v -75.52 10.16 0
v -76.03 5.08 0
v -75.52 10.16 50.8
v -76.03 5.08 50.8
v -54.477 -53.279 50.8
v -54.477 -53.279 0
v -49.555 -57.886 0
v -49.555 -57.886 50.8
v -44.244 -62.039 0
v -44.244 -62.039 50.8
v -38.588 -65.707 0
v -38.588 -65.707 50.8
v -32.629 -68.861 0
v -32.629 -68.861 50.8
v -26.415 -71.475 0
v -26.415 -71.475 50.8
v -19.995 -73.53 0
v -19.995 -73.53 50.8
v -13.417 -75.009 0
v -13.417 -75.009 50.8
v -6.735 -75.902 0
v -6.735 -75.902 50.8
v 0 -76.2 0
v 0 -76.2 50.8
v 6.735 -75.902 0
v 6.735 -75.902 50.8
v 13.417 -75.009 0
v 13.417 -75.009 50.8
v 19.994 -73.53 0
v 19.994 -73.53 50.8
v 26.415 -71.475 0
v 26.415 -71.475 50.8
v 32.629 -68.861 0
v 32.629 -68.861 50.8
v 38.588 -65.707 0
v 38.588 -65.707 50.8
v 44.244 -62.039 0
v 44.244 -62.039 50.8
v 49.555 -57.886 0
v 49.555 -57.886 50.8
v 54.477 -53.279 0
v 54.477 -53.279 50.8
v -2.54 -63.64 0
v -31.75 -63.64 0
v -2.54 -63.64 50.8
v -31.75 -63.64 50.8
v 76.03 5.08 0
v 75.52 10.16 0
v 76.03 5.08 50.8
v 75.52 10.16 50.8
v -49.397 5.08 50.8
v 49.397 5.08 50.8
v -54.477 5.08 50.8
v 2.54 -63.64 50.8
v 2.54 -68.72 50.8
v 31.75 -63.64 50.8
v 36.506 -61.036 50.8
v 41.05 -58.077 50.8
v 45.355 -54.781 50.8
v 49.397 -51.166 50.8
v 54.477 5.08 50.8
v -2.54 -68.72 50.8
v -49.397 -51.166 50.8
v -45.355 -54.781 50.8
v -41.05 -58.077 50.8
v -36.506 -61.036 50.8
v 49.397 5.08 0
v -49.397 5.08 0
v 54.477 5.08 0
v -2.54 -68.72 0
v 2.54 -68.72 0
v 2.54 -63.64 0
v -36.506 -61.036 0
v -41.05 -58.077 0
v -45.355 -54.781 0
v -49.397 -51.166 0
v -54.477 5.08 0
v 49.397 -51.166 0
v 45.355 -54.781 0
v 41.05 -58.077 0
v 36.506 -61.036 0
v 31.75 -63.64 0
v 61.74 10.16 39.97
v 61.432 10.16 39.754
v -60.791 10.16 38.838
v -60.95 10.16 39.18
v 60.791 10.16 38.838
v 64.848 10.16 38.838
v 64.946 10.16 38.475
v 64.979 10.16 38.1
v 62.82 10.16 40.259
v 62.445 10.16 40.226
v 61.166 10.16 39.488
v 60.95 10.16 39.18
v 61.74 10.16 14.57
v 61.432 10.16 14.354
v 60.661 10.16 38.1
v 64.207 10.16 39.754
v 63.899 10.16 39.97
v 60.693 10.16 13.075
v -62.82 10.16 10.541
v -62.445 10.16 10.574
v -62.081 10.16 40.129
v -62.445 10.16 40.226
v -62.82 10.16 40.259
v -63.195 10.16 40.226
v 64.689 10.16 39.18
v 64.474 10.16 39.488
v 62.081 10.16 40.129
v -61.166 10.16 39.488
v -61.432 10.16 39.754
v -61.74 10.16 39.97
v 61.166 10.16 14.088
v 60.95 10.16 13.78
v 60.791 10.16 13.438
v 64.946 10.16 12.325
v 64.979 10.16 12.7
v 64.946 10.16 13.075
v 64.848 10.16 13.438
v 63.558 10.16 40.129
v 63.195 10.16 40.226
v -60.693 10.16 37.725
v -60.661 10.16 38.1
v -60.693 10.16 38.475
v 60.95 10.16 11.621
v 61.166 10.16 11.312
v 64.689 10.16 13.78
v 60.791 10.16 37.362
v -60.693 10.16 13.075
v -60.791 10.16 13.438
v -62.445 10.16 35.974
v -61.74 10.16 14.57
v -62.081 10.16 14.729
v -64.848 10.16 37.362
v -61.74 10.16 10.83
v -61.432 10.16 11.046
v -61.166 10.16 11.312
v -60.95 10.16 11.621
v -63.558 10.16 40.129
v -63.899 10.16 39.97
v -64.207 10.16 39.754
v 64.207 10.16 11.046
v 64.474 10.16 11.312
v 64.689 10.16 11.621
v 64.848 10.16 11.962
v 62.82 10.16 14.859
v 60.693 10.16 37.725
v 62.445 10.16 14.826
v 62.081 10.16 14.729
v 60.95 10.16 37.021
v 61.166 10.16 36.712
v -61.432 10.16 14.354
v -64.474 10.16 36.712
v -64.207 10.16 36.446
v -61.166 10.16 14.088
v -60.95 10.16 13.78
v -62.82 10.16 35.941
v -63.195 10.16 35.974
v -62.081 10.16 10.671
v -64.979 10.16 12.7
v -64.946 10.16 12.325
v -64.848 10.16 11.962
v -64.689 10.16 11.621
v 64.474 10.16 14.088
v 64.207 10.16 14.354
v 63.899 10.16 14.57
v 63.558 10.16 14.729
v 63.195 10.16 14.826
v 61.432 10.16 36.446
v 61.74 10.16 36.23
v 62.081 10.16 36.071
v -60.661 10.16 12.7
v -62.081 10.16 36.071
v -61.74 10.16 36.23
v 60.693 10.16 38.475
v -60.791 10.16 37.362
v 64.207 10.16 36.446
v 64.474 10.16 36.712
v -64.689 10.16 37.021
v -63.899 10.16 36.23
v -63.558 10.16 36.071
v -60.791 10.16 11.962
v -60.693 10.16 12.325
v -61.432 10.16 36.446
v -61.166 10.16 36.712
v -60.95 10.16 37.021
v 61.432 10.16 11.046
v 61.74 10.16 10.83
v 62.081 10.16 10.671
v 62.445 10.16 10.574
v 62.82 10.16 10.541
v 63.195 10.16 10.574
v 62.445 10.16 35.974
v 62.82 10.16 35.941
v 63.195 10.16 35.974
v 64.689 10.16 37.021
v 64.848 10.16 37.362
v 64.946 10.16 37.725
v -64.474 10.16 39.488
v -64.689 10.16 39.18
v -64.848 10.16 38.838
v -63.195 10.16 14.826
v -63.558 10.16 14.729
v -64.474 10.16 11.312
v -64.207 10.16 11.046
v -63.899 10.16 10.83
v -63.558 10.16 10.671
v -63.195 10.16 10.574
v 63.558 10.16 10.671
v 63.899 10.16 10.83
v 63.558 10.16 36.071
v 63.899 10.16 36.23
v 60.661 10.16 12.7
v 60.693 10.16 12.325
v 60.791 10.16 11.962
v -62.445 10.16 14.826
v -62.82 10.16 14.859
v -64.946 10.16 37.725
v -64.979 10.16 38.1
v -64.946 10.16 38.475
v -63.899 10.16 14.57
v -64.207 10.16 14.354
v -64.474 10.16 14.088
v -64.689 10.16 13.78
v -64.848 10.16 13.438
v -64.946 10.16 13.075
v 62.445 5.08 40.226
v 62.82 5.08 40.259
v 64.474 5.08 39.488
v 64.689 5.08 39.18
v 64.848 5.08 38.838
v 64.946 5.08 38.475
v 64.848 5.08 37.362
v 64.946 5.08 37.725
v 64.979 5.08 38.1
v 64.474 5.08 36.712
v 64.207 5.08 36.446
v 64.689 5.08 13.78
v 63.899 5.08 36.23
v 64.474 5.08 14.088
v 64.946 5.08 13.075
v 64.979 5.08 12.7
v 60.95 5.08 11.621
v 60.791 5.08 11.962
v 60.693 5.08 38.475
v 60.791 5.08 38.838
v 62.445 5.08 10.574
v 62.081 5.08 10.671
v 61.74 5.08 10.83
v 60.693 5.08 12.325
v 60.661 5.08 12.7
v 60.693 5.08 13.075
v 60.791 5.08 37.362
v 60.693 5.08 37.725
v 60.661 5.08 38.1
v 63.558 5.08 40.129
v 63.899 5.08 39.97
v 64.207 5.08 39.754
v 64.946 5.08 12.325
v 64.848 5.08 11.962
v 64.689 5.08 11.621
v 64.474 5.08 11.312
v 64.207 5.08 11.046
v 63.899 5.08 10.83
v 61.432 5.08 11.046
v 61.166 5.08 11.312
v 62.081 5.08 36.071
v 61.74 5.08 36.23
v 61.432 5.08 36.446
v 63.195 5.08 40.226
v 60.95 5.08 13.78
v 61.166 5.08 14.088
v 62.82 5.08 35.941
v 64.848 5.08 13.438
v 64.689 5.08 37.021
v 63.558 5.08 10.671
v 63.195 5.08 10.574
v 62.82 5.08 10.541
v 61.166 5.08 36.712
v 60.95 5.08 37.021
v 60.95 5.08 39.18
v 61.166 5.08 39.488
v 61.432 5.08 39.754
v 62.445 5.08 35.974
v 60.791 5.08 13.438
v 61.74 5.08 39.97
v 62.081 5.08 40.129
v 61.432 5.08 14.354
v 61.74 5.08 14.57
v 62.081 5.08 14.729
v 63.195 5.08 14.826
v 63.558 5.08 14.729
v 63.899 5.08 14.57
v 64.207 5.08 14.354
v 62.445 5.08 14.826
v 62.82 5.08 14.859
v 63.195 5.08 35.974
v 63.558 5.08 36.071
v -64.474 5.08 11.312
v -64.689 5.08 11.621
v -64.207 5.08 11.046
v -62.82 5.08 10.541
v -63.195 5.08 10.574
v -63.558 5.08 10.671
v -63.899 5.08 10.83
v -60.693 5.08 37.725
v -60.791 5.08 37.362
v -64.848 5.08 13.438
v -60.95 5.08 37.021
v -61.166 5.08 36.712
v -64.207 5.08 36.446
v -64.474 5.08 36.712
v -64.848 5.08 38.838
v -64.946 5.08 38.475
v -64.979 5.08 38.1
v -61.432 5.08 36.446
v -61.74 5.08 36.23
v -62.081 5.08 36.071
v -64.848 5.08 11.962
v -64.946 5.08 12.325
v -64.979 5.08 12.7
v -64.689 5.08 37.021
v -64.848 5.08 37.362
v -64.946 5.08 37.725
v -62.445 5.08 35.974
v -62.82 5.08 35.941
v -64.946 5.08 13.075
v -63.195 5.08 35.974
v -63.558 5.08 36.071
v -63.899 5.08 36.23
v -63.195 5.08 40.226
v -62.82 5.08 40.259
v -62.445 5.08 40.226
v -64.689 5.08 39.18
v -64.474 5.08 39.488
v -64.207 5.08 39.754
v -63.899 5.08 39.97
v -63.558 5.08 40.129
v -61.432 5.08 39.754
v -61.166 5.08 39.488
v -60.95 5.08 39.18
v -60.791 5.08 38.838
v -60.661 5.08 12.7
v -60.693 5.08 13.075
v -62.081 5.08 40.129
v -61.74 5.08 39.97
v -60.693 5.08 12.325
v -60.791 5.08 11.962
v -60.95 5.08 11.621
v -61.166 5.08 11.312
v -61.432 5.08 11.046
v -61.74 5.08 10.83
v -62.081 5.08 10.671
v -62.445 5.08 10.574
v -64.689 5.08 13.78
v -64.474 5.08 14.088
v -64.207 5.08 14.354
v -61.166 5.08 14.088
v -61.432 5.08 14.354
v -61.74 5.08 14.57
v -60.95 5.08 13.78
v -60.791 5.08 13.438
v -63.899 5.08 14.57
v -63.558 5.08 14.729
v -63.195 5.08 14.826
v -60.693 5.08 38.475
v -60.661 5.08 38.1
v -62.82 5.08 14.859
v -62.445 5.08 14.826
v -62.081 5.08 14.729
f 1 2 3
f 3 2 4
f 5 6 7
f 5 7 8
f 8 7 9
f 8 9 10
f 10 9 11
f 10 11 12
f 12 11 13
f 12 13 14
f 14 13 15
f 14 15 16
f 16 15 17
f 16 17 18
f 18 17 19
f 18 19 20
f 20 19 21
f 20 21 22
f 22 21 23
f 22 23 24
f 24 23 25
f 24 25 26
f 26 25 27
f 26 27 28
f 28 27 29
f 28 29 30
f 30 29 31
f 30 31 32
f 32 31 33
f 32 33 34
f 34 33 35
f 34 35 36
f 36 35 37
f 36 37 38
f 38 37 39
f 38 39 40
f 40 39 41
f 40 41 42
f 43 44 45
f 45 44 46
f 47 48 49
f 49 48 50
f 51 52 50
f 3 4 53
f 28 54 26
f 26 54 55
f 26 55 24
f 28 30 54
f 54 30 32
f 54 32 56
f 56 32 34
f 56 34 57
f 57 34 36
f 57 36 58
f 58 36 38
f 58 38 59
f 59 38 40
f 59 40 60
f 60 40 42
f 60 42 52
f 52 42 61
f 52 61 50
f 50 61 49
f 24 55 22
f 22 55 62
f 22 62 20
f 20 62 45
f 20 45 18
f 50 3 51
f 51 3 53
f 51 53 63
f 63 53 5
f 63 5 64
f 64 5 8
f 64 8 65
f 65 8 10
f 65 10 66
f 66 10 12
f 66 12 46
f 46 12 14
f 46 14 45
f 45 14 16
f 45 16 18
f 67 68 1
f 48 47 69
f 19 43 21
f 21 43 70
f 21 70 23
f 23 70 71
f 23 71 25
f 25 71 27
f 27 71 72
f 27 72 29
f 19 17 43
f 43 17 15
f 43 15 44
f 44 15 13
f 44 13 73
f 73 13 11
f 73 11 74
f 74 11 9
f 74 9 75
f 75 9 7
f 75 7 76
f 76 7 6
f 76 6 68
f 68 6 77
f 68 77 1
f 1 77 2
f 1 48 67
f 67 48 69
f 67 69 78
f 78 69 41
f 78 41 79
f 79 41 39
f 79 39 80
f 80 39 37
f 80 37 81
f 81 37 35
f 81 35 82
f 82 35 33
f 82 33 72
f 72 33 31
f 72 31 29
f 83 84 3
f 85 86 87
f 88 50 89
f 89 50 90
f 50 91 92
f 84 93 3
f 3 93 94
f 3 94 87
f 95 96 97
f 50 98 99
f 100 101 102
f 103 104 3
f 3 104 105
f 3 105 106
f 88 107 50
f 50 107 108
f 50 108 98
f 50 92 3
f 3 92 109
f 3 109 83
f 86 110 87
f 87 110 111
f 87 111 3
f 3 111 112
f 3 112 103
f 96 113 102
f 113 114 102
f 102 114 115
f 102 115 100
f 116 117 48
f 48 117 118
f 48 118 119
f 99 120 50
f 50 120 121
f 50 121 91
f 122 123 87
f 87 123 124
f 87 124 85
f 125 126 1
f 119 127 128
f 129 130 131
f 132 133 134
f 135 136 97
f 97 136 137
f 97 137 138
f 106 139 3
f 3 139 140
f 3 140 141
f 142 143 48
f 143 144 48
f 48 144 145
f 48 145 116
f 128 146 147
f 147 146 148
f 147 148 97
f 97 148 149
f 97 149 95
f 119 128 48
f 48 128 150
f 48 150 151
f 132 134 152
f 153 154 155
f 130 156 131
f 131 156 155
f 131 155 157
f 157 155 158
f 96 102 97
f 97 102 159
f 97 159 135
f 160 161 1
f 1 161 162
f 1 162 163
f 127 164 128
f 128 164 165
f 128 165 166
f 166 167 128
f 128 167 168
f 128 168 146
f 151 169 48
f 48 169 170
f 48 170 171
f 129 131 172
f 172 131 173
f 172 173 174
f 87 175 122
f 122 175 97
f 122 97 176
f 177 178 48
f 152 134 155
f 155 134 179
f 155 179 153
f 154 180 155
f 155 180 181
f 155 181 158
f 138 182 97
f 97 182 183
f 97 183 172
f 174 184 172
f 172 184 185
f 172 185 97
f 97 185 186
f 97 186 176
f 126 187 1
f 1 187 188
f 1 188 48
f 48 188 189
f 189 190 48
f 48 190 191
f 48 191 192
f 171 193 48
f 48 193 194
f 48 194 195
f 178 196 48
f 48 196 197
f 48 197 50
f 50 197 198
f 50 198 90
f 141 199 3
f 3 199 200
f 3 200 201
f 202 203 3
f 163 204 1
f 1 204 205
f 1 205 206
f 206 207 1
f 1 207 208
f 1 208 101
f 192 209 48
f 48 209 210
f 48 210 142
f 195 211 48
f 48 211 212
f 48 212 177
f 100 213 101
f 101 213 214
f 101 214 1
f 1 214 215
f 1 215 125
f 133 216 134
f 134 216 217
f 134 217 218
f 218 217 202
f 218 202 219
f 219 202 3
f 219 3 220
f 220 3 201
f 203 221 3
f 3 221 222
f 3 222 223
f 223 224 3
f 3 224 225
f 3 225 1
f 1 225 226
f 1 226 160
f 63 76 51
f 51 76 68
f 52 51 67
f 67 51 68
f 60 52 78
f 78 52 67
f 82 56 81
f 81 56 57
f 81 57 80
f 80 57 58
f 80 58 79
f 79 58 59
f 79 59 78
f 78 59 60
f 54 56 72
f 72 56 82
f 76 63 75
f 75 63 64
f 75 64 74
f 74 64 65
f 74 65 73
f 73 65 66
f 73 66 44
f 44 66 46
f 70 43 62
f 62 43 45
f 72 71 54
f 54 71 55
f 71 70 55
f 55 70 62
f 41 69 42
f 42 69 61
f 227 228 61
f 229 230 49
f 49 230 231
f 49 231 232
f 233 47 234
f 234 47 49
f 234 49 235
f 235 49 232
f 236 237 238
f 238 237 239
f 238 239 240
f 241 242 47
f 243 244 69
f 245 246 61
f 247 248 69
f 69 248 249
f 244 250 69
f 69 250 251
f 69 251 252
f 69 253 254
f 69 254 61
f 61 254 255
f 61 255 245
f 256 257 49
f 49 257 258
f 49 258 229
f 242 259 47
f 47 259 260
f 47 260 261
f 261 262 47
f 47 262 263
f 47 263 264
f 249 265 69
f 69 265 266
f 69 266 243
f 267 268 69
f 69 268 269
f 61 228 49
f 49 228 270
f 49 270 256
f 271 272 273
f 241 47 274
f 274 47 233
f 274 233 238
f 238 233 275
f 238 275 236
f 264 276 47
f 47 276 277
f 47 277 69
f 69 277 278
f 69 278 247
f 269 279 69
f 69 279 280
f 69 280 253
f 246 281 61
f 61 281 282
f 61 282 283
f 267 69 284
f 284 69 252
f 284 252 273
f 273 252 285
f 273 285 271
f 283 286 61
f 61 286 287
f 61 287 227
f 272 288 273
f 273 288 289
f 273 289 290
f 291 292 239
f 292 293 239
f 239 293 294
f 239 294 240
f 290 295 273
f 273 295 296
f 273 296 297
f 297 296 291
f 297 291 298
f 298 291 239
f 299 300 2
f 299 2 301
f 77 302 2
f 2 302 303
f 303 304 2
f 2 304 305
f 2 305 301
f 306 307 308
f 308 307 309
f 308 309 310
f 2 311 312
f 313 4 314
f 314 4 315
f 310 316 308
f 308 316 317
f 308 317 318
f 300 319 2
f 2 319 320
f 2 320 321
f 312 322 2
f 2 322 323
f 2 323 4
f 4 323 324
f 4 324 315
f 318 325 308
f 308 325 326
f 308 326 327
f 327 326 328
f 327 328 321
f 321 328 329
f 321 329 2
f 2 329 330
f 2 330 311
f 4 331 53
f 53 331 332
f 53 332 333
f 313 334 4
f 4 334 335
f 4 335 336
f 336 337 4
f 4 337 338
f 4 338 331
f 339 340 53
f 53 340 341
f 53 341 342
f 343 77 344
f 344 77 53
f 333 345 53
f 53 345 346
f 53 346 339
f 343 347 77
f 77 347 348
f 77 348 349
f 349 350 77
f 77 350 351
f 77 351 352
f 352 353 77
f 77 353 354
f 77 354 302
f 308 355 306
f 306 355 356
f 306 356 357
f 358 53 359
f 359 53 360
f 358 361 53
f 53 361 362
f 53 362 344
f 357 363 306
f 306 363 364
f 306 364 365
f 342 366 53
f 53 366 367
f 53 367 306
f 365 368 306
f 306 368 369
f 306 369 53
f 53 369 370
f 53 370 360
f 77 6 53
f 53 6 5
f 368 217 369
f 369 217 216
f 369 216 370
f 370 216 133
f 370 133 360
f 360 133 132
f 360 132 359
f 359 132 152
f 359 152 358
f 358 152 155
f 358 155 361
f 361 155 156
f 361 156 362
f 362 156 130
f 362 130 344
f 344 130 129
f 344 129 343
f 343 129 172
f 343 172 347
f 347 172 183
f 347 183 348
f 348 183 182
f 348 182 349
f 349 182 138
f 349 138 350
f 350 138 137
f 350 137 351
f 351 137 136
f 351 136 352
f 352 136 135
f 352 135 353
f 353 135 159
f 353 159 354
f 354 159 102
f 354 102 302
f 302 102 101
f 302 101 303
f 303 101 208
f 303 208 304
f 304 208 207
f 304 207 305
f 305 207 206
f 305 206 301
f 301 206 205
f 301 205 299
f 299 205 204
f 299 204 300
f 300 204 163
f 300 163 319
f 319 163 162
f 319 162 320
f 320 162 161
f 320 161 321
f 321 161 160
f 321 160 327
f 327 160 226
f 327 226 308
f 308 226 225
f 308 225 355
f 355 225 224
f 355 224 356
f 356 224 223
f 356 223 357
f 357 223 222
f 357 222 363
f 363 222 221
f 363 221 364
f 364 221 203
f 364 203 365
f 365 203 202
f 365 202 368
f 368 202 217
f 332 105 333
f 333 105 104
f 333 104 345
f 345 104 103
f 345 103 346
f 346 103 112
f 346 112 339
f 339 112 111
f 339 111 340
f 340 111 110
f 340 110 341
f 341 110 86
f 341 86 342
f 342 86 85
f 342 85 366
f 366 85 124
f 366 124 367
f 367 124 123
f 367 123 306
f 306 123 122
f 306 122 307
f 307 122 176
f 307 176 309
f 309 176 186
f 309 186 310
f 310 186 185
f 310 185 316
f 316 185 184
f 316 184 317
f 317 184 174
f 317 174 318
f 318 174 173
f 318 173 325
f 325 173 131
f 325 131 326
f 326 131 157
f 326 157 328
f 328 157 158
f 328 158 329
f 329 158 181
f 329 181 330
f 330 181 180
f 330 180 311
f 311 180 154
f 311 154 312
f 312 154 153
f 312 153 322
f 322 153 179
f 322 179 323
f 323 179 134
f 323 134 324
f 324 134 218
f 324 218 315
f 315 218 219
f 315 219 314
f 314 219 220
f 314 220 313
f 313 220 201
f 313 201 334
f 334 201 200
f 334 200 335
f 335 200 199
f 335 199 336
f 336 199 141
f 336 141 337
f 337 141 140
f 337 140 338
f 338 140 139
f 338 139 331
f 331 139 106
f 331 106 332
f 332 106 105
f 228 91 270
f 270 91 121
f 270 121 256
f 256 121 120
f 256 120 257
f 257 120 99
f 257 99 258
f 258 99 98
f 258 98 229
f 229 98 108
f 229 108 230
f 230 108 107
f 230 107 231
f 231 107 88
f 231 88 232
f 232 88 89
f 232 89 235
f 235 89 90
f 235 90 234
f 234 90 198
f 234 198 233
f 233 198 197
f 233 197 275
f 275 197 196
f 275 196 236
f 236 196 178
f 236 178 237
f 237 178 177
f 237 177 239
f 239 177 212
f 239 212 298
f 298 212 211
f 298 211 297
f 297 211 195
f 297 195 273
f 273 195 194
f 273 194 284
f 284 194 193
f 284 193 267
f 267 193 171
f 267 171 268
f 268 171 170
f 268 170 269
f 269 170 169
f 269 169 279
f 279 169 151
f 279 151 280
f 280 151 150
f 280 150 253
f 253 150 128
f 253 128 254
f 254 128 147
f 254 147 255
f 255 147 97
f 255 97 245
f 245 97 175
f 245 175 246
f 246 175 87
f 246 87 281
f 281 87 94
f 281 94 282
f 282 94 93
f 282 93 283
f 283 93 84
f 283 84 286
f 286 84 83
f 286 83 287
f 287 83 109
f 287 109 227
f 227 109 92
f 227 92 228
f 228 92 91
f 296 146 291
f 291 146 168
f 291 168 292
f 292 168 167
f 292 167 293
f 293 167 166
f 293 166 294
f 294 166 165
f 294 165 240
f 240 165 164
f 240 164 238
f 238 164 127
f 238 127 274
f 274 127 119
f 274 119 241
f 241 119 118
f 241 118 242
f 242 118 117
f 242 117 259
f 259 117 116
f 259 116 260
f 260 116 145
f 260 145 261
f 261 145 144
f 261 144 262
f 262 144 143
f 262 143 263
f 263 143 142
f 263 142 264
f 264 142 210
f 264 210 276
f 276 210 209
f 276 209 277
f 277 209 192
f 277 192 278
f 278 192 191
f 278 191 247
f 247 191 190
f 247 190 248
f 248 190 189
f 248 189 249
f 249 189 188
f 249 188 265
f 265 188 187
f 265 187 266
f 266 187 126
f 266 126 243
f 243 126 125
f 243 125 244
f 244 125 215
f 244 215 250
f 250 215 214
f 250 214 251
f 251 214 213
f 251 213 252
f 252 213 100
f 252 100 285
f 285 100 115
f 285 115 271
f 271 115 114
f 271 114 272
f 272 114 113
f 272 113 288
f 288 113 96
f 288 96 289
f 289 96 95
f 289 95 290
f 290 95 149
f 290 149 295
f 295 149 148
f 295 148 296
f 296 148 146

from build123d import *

# Parameters (mm, degrees)
SKETCH2_R           = 76.2
BOSS_EXTRUDE1_DEPTH = 50.8
CUT_EXTRUDE1_DEPTH  = 76.2
CUT_EXTRUDE2_DEPTH  = 76.2
SKETCH8_W           = 5.08
SKETCH8_H           = 5.08
CUT_EXTRUDE4_DEPTH  = 50.8
CUT_EXTRUDE5_DEPTH  = 51.8
SKETCH10_R          = 2.159
CUT_EXTRUDE6_DEPTH  = 25.4


with BuildPart() as part:
    # Sketch2 → Boss-Extrude1 (new body)
    with BuildSketch(Plane.XY):
        Circle(SKETCH2_R)
    extrude(amount=BOSS_EXTRUDE1_DEPTH)

    # Sketch4 → Cut-Extrude1 (cut)
    with BuildSketch(Plane.XY.offset(50.8)):
        with BuildLine():
            Line((-75.519629236, 10.16), (75.519629236, 10.16))
            ThreePointArc((75.519629236, 10.16), (0, 76.2), (-75.519629236, 10.16))
        make_face()
    extrude(amount=-CUT_EXTRUDE1_DEPTH, mode=Mode.SUBTRACT)

    # Sketch5 → Cut-Extrude2 (cut)
    with BuildSketch(Plane.XY.offset(50.8)):
        with BuildLine():
            Line((49.396930897, 5.08), (-49.396930897, 5.08))
            Line((-49.396930897, 5.08), (-49.396930897, -51.166371944))
            ThreePointArc((-49.396930897, -51.166371944), (-41.049983197, -58.077132157), (-31.75, -63.639546667))
            Line((-31.75, -63.639546667), (31.75, -63.639546667))
            ThreePointArc((31.75, -63.639546667), (41.049983197, -58.077132157), (49.396930897, -51.166371944))
            Line((49.396930897, -51.166371944), (49.396930897, 5.08))
        make_face()
    extrude(amount=-CUT_EXTRUDE2_DEPTH, mode=Mode.SUBTRACT)

    # Sketch8 → Cut-Extrude4 (cut)
    with BuildSketch(Plane.XY.offset(50.8)):
        with Locations((0, -66.179546667)):
            Rectangle(SKETCH8_W, SKETCH8_H)
    extrude(amount=-CUT_EXTRUDE4_DEPTH, mode=Mode.SUBTRACT)

    # Sketch9 → Cut-Extrude5 (cut, through all)
    with BuildSketch(Plane.XY.offset(50.8)):
        with BuildLine():
            Line((54.476930897, 5.08), (76.030478099, 5.08))
            ThreePointArc((76.030478099, 5.08), (71.480790805, -26.399555791), (54.476930897, -53.279489487))
            Line((54.476930897, -53.279489487), (54.476930897, 5.08))
        make_face()
        with BuildLine():
            Line((-54.476930897, 5.08), (-54.476930897, -53.279489487))
            ThreePointArc((-54.476930897, -53.279489487), (-71.480790805, -26.399555791), (-76.030478099, 5.08))
            Line((-76.030478099, 5.08), (-54.476930897, 5.08))
        make_face()
    extrude(amount=-CUT_EXTRUDE5_DEPTH, mode=Mode.SUBTRACT)

    # Sketch10 → Cut-Extrude6 (cut)
    with BuildSketch(Plane(origin=(0, 10.16, 0), x_dir=(1, 0, 0), z_dir=(0, 1, 0))):
        with Locations((-62.819629236, -12.7)):
            Circle(SKETCH10_R)
        with Locations((-62.819629236, -38.1)):
            Circle(SKETCH10_R)
        with Locations((62.819629236, -12.7)):
            Circle(SKETCH10_R)
        with Locations((62.819629236, -38.1)):
            Circle(SKETCH10_R)
    extrude(amount=-CUT_EXTRUDE6_DEPTH, mode=Mode.SUBTRACT)


solid = part.part
